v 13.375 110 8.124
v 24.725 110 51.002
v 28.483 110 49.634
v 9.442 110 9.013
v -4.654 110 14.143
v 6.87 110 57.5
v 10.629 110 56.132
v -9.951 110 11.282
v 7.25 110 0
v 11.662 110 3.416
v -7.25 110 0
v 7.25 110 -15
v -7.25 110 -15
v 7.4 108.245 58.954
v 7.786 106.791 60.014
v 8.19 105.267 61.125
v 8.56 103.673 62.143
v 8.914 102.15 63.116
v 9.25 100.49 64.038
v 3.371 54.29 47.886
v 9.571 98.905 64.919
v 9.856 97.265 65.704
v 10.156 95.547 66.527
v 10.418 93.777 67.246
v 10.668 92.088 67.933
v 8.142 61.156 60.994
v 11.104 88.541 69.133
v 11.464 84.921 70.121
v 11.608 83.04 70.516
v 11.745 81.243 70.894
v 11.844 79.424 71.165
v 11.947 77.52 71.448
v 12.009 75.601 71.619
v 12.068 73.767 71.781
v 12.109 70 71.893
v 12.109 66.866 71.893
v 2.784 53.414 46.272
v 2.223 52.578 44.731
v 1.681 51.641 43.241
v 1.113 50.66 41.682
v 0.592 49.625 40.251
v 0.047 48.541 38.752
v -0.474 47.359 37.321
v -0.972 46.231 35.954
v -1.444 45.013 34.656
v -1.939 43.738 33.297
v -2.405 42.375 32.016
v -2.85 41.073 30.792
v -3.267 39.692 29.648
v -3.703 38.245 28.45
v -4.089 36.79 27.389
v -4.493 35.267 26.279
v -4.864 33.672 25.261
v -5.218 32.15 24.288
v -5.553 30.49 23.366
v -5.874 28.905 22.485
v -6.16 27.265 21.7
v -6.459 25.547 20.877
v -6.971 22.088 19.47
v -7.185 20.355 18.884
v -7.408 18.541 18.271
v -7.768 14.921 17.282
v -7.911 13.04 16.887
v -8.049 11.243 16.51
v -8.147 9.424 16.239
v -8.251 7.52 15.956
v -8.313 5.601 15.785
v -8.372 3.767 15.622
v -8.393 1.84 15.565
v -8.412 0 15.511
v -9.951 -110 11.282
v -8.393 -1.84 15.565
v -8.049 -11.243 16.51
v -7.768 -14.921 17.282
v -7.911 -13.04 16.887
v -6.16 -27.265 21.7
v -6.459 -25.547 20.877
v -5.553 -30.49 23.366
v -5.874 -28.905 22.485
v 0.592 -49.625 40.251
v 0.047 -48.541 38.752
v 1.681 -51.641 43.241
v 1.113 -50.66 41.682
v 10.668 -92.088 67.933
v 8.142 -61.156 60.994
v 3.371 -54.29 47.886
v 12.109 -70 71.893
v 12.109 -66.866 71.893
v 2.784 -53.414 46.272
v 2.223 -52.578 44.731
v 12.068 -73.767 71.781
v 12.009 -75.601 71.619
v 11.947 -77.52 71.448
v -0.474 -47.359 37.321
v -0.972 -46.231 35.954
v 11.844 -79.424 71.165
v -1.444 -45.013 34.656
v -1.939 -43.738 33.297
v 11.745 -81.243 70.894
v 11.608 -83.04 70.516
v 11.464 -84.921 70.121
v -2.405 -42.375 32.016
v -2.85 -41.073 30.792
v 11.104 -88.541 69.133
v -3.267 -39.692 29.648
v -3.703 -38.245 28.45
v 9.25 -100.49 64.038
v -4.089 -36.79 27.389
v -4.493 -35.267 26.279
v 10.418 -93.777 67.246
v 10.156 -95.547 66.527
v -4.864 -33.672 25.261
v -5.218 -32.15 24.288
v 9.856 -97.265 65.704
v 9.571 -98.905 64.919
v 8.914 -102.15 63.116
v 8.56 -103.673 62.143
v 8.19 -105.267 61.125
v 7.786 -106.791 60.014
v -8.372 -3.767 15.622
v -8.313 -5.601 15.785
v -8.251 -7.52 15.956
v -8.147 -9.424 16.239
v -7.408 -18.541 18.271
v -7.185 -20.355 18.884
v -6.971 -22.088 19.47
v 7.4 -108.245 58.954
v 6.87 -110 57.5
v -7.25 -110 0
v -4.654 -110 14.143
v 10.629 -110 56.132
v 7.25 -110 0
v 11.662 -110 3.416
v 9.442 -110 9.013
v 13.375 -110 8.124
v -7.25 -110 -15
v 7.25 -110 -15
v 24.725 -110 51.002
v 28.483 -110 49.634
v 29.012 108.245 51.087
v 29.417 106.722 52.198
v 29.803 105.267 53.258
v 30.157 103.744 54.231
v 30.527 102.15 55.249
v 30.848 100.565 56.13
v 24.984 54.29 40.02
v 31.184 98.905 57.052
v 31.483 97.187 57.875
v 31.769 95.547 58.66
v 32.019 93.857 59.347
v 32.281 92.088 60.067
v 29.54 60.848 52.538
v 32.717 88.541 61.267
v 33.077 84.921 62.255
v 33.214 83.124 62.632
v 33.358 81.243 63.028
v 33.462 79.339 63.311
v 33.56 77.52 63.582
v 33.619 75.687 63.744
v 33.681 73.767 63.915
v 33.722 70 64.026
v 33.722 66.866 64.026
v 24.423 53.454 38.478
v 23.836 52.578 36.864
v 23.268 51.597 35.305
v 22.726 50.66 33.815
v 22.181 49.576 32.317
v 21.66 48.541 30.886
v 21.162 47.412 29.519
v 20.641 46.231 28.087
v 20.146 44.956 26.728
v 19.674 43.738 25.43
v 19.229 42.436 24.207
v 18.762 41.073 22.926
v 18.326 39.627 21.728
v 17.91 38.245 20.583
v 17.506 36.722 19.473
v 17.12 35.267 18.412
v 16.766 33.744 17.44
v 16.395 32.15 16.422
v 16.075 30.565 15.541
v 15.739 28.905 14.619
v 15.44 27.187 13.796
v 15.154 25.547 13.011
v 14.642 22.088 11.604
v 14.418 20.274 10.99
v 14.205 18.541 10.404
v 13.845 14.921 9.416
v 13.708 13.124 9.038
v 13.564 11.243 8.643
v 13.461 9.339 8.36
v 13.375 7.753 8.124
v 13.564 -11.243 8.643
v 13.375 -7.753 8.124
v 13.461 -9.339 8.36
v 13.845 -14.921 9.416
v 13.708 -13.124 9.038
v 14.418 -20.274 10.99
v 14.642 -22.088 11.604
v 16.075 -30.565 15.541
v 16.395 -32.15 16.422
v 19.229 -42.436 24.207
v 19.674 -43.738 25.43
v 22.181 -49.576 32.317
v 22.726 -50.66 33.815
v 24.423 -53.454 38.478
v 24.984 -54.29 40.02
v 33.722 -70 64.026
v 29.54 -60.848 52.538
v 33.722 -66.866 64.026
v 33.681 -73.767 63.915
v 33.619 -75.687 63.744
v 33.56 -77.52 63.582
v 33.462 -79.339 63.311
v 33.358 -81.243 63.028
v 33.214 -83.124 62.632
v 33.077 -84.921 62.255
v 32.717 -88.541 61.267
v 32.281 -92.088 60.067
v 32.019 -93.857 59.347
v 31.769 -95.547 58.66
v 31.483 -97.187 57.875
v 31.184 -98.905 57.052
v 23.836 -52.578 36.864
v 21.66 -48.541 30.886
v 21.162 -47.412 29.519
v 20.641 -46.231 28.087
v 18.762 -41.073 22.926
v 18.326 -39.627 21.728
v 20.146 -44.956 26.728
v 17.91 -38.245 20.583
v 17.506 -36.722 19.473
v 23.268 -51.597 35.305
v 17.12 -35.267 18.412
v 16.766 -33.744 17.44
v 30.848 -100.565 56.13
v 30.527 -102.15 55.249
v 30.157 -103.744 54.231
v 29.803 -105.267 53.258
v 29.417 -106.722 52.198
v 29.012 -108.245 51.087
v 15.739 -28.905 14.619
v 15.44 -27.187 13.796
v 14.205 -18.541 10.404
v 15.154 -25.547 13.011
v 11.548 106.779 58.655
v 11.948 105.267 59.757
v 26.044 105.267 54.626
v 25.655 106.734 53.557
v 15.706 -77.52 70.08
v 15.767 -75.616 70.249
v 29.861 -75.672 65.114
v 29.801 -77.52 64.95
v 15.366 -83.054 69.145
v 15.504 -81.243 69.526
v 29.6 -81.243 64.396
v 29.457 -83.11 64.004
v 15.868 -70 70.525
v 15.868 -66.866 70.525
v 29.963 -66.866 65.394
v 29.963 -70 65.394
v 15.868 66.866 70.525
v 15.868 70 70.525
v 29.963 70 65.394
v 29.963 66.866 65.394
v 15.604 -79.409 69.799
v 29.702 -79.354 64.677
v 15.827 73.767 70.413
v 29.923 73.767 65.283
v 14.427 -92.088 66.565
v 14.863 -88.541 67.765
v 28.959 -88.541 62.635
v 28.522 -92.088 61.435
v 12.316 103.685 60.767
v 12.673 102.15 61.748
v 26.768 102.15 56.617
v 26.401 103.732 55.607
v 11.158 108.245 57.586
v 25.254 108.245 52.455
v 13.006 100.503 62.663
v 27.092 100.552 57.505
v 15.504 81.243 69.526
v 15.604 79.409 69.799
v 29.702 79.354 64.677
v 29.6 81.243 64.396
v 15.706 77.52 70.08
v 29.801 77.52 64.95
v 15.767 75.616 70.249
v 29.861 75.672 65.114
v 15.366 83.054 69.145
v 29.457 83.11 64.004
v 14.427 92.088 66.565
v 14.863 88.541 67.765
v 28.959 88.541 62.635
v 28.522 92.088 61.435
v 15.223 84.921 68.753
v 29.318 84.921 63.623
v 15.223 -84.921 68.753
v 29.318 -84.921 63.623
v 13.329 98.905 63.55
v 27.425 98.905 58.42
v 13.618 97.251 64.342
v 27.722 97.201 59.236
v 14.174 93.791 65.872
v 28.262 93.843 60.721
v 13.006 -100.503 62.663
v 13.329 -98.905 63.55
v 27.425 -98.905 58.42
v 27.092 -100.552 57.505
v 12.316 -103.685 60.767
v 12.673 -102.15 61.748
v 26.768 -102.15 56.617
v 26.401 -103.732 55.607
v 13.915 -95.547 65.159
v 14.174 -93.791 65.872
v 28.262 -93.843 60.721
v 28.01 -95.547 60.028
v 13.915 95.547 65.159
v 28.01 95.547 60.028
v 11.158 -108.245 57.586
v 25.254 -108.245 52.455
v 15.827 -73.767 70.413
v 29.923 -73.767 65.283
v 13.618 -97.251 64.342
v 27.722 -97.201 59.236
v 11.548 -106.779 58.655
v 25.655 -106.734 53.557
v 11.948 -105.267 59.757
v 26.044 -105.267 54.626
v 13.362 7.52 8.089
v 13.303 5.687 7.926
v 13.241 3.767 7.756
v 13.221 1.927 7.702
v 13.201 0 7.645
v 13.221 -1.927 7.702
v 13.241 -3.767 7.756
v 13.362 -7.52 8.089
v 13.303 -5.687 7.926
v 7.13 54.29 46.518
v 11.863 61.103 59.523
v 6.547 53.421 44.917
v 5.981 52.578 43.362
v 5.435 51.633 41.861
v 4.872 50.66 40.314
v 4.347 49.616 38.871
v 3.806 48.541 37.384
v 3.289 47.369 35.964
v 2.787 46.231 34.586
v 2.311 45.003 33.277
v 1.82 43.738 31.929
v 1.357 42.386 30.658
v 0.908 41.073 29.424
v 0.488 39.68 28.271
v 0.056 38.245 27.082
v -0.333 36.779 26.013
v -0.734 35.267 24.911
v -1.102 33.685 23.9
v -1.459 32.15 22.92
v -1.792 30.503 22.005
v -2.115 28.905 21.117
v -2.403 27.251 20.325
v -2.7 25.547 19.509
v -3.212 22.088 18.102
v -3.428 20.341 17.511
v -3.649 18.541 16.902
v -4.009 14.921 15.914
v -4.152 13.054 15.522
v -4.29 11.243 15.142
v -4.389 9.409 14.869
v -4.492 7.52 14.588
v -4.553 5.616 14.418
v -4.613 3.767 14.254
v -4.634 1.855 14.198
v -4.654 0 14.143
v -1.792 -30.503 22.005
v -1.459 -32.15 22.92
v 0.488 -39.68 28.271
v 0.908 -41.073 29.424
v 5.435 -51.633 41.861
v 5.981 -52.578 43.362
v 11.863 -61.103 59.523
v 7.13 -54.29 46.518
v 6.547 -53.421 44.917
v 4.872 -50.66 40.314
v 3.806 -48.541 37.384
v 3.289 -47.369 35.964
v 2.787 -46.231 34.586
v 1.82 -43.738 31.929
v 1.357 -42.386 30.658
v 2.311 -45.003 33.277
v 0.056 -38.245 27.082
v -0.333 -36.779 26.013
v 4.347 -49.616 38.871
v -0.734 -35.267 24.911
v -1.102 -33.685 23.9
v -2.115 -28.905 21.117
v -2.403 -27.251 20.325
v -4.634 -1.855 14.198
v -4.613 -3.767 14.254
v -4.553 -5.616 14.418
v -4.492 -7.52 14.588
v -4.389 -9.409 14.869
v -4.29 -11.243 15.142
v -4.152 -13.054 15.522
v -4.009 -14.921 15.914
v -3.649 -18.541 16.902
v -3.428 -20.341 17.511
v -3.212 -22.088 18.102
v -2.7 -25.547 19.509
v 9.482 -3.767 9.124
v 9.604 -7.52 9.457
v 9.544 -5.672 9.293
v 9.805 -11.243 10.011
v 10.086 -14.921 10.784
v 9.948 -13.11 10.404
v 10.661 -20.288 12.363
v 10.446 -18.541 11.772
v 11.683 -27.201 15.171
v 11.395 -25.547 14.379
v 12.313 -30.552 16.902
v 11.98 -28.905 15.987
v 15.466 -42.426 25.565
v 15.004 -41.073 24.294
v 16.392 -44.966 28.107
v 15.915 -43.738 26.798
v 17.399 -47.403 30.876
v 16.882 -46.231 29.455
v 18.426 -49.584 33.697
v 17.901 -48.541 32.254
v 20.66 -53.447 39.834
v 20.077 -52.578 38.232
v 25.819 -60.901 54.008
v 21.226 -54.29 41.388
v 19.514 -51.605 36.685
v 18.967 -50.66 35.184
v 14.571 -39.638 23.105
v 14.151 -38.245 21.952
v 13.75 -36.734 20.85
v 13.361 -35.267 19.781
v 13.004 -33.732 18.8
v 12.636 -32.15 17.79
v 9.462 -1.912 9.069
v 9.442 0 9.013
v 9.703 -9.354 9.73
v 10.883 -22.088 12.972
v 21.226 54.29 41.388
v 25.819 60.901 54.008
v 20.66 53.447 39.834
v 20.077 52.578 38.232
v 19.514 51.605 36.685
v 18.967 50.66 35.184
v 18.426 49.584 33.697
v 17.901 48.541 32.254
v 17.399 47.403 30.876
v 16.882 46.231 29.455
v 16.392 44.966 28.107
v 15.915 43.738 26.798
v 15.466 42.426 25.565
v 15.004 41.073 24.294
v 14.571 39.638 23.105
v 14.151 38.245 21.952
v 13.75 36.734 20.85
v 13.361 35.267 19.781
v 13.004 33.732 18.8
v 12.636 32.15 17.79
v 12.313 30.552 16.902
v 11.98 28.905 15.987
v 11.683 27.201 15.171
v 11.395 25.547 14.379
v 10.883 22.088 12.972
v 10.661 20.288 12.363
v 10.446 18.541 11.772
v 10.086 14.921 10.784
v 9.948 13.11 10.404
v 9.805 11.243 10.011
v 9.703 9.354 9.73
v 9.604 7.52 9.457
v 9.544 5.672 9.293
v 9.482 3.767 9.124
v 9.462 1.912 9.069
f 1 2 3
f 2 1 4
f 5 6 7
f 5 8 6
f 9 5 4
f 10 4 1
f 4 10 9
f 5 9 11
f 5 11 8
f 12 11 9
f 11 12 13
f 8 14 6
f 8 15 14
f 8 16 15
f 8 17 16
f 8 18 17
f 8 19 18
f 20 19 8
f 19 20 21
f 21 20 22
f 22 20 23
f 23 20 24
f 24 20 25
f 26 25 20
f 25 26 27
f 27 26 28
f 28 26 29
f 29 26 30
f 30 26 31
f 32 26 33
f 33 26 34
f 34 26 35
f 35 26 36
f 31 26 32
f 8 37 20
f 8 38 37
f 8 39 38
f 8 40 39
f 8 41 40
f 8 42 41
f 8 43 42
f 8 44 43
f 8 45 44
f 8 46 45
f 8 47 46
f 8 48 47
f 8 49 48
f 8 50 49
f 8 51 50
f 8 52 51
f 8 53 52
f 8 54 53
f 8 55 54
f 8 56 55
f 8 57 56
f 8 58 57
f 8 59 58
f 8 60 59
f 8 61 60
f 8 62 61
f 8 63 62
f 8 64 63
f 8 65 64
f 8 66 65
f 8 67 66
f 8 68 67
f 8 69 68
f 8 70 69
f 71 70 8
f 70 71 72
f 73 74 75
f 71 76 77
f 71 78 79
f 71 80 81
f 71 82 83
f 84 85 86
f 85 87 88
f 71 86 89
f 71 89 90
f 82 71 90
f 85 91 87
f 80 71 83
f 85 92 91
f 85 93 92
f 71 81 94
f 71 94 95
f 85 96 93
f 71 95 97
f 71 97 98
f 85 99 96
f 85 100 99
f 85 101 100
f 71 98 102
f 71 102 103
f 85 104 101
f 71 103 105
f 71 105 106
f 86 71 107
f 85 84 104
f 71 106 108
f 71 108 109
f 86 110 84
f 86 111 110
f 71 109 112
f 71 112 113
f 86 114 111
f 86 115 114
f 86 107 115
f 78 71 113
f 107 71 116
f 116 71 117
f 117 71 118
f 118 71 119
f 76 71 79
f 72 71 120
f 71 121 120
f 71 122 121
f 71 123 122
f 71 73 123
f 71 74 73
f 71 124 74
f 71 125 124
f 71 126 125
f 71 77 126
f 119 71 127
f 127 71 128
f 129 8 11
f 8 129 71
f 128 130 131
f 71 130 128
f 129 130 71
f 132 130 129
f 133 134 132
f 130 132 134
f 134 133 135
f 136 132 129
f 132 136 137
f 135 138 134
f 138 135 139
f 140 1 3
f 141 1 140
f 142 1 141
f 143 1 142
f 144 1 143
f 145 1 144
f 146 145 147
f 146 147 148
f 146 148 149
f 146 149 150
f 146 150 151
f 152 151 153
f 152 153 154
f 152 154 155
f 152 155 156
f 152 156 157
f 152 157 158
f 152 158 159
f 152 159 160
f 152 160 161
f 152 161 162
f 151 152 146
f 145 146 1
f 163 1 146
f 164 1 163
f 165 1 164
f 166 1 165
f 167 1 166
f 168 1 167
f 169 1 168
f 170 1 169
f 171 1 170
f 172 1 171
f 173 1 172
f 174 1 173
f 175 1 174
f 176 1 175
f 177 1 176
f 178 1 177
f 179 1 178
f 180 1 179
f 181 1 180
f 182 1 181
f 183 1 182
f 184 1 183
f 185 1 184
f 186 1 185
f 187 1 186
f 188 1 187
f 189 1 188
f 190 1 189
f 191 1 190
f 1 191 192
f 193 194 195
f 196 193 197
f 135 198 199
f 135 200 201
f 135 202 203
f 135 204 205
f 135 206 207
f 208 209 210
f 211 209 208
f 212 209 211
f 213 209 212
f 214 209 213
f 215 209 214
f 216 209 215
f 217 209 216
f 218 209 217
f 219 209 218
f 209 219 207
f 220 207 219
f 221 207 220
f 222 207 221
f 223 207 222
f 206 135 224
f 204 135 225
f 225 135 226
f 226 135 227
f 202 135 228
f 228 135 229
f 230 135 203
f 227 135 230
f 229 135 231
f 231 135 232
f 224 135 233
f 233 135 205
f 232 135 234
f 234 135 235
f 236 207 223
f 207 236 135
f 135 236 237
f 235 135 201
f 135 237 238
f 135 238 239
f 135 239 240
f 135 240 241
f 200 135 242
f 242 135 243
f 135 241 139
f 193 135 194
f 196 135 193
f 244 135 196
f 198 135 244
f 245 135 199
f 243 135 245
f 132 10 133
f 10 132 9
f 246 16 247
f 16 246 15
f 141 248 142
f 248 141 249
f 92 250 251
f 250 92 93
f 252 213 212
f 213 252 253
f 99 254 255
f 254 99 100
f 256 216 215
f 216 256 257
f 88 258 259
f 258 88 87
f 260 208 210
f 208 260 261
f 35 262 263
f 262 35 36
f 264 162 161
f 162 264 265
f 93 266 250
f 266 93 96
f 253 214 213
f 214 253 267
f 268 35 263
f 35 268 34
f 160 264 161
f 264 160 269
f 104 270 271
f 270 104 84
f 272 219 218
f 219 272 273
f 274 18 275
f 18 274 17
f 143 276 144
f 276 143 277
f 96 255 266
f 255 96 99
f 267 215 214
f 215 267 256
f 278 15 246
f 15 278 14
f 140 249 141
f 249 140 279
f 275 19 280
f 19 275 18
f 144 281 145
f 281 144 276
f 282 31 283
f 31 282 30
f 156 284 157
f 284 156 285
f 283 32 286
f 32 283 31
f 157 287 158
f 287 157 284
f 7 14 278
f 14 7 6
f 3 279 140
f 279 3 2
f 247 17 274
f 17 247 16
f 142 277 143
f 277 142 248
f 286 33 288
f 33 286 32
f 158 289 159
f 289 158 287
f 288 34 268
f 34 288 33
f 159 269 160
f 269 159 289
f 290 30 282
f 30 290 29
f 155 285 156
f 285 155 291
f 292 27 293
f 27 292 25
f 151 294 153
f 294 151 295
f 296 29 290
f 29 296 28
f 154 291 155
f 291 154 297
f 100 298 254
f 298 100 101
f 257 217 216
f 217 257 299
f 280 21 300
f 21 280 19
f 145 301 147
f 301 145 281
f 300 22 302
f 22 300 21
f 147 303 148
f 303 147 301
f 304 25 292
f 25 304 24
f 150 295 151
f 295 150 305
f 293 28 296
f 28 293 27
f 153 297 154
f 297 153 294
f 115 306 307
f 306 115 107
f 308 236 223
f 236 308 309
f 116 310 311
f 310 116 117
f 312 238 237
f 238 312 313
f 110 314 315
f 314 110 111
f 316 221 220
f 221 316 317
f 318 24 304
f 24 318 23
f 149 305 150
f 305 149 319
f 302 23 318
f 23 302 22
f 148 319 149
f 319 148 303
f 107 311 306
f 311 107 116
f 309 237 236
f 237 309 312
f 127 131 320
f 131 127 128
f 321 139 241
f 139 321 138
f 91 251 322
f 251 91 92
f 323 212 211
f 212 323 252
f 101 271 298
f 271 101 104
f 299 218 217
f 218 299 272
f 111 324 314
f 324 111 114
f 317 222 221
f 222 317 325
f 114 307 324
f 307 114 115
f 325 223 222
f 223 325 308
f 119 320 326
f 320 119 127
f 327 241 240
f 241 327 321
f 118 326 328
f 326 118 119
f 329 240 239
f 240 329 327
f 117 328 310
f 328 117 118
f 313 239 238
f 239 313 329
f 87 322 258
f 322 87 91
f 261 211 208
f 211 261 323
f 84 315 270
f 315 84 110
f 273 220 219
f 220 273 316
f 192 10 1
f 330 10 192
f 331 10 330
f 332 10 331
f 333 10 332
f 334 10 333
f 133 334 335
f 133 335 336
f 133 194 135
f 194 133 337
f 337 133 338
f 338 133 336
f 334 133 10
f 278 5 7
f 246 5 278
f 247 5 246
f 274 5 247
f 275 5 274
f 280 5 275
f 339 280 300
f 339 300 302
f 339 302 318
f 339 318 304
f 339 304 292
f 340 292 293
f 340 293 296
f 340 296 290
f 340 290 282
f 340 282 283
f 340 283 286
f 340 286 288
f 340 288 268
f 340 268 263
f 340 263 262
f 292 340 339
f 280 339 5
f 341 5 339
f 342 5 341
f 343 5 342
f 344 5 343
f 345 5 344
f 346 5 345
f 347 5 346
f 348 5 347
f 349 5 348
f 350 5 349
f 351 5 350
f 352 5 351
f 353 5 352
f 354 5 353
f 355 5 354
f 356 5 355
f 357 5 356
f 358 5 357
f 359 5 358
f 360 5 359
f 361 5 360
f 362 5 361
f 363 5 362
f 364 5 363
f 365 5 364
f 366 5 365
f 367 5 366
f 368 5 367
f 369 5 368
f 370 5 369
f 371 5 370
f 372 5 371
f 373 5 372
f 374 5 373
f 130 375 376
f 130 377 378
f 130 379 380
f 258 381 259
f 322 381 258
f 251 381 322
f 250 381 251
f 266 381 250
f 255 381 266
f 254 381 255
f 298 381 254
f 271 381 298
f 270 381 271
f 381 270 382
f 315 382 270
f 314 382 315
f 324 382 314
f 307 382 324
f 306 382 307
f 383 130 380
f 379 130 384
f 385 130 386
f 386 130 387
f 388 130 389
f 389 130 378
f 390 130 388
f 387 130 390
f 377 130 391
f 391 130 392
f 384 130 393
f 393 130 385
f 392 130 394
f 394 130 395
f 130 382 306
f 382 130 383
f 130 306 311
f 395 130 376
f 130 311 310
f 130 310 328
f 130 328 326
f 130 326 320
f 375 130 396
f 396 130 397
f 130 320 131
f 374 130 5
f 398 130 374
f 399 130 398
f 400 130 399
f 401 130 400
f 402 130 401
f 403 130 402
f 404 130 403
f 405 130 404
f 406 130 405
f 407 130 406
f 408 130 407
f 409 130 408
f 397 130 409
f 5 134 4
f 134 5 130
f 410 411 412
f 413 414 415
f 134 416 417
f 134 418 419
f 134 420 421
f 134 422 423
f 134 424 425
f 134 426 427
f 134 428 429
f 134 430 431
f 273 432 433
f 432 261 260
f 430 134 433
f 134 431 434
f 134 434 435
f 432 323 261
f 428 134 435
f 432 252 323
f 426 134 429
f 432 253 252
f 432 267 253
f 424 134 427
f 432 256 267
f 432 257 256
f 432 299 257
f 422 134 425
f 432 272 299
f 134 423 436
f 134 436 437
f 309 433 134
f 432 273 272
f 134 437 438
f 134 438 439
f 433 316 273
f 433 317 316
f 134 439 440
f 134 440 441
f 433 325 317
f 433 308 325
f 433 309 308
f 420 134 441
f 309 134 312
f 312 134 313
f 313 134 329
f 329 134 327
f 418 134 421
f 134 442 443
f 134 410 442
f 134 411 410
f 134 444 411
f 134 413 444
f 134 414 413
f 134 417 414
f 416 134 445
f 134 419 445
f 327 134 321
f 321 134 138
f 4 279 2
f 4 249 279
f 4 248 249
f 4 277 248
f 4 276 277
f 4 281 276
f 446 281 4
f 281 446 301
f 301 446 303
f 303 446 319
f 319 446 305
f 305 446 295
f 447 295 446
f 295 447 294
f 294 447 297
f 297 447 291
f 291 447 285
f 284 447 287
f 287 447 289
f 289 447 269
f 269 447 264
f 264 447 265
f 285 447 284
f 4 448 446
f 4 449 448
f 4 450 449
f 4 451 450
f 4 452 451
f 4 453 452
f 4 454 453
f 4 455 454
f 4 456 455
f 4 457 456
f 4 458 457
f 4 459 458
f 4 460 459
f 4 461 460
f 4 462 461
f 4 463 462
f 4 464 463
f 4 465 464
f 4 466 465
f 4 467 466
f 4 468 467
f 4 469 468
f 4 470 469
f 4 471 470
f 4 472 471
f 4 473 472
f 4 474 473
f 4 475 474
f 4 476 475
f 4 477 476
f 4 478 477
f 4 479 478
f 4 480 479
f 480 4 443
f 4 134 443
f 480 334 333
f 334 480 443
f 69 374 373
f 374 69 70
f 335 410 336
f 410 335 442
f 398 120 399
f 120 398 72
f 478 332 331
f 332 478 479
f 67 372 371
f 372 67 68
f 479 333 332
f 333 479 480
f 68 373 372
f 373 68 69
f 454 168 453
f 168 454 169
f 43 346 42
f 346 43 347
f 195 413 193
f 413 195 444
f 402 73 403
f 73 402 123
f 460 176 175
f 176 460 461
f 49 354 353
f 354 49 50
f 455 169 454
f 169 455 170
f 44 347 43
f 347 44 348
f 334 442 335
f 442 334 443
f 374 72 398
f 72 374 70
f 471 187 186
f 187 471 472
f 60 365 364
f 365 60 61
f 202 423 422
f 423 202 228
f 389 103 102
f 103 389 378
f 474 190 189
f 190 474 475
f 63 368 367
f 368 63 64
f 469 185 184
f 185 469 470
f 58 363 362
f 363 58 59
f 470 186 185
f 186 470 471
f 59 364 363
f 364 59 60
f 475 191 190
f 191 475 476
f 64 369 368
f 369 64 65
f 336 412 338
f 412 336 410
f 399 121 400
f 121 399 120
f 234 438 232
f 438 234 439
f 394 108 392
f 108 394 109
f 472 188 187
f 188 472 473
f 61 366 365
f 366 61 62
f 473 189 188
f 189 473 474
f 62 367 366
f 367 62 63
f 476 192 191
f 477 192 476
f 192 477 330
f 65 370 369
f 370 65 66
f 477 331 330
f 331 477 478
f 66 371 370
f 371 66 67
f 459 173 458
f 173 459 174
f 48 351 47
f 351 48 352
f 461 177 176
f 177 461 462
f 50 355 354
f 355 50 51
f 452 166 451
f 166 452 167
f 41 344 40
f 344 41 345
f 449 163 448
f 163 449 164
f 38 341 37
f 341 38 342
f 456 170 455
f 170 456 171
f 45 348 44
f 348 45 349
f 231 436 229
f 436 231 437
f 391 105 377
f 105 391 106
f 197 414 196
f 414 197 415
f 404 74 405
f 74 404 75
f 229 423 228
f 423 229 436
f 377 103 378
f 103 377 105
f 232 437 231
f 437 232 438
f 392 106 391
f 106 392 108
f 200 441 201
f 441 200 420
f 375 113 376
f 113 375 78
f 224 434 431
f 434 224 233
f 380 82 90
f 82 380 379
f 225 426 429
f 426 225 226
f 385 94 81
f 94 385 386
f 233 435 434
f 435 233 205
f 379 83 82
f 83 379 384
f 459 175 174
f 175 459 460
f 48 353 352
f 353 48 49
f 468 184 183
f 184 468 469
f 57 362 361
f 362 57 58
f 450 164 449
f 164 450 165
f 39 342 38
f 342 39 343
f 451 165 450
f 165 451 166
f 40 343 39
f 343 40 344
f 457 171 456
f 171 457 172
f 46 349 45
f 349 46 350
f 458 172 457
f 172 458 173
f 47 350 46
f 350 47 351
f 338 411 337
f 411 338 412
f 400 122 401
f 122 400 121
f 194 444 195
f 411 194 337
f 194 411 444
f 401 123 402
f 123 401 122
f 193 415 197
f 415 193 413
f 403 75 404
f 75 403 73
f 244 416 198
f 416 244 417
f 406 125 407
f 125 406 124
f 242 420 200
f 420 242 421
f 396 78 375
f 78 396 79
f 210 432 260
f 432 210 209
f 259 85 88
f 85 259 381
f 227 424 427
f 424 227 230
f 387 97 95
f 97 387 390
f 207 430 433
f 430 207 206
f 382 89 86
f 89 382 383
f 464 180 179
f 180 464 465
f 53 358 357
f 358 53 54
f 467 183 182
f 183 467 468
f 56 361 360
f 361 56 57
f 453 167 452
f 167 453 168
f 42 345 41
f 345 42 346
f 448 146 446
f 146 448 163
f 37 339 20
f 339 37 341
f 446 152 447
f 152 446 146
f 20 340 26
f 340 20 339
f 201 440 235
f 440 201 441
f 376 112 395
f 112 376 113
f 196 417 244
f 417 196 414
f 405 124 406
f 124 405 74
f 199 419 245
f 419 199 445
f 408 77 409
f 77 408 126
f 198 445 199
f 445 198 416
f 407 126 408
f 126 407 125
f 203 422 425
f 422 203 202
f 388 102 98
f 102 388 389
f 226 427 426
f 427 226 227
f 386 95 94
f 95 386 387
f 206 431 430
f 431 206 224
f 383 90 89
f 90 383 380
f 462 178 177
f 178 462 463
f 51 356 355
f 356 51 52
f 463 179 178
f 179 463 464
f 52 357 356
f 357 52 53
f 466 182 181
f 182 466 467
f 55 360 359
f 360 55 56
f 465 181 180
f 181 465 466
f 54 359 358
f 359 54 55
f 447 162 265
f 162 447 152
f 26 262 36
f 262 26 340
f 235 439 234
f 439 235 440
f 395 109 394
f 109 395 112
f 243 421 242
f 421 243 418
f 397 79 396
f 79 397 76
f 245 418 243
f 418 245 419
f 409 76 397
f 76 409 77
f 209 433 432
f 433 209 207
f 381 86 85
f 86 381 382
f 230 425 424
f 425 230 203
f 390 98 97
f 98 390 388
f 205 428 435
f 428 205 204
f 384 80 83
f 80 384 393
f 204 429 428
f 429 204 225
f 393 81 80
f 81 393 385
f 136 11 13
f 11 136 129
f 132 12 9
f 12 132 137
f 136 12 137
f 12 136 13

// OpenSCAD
$fn=100;
/*

Object Name: Adapter For Laptop Chest Stand (OpenSCAD)
Author: Brian Khuu 2021

*/

adapterL=220;
adapterH=20-5;
adapterAngle=20; 

adapterHingeOffset=5;

currGapW=15-0.5;
newGapW=15;
newGapH=60;
newGapThickness=8;

translate([0,0,-adapterH/2])
    cube([currGapW,adapterL,adapterH], center=true);

difference()
{
    union()
    {
        // base
        hull()
        {       
            translate([0,0,0.005])
                    cube([currGapW,adapterL,0.01], center=true);
            translate([0,0,adapterHingeOffset])
                rotate([0,adapterAngle,0])
                translate([0,0,0.005+5])
                cube([newGapW+newGapThickness,adapterL,0.01+5], center=true);
        }

        // top
        intersection()
        {
            hull()
            {
                translate([0,0,0.005])
                        cube([currGapW,adapterL,0.01], center=true);
                translate([0,0,adapterHingeOffset])
                    rotate([0,adapterAngle,0])
                    translate([0,0,newGapH/2+5])
                    cube([newGapW+newGapThickness,adapterL,newGapH+5], center=true);
            }
            hull()
            {
                roundness=20;
                translate([0,0,adapterHingeOffset])
                    rotate([0,adapterAngle,0])
                    translate([0,adapterL/2-newGapH+roundness,7]) 
                    rotate([0, 90,0])
                    cylinder(r=newGapH,h=1000, center=true);
                translate([0,0,adapterHingeOffset])
                    rotate([0,adapterAngle,0])
                    translate([0,-adapterL/2+newGapH-roundness,7]) 
                    rotate([0, 90,0])
                    cylinder(r=newGapH,h=1000, center=true);
            }
        }
    }
    
    // Gap Cut
    translate([0,0,adapterHingeOffset])
        rotate([0,adapterAngle,0])
        translate([0,0,newGapH/2+5+4])
        cube([newGapW,adapterL+1,newGapH+4], center=true);
    
    // Middle slit for trackpad
    hull()
    {
        // Big slit
        translate([0,0,adapterHingeOffset])
            rotate([0,adapterAngle,0])
            translate([0,0,newGapH+7]) 
            rotate([0,90,0])
            cylinder(r=newGapH,h=1000, center=true);
        
        // Little
        translate([0,0,adapterHingeOffset])
            rotate([0,adapterAngle,0])
            translate([0,adapterL/2-newGapH+15,5+5+newGapH]) 
            rotate([0,90,0])
            cylinder(r=3,h=1000, center=true);
        translate([0,0,adapterHingeOffset])
            rotate([0,adapterAngle,0])
            translate([0,-(adapterL/2-newGapH+15),5+5+newGapH]) 
            rotate([0,90,0])
            cylinder(r=3,h=1000, center=true);
    }
    

}
